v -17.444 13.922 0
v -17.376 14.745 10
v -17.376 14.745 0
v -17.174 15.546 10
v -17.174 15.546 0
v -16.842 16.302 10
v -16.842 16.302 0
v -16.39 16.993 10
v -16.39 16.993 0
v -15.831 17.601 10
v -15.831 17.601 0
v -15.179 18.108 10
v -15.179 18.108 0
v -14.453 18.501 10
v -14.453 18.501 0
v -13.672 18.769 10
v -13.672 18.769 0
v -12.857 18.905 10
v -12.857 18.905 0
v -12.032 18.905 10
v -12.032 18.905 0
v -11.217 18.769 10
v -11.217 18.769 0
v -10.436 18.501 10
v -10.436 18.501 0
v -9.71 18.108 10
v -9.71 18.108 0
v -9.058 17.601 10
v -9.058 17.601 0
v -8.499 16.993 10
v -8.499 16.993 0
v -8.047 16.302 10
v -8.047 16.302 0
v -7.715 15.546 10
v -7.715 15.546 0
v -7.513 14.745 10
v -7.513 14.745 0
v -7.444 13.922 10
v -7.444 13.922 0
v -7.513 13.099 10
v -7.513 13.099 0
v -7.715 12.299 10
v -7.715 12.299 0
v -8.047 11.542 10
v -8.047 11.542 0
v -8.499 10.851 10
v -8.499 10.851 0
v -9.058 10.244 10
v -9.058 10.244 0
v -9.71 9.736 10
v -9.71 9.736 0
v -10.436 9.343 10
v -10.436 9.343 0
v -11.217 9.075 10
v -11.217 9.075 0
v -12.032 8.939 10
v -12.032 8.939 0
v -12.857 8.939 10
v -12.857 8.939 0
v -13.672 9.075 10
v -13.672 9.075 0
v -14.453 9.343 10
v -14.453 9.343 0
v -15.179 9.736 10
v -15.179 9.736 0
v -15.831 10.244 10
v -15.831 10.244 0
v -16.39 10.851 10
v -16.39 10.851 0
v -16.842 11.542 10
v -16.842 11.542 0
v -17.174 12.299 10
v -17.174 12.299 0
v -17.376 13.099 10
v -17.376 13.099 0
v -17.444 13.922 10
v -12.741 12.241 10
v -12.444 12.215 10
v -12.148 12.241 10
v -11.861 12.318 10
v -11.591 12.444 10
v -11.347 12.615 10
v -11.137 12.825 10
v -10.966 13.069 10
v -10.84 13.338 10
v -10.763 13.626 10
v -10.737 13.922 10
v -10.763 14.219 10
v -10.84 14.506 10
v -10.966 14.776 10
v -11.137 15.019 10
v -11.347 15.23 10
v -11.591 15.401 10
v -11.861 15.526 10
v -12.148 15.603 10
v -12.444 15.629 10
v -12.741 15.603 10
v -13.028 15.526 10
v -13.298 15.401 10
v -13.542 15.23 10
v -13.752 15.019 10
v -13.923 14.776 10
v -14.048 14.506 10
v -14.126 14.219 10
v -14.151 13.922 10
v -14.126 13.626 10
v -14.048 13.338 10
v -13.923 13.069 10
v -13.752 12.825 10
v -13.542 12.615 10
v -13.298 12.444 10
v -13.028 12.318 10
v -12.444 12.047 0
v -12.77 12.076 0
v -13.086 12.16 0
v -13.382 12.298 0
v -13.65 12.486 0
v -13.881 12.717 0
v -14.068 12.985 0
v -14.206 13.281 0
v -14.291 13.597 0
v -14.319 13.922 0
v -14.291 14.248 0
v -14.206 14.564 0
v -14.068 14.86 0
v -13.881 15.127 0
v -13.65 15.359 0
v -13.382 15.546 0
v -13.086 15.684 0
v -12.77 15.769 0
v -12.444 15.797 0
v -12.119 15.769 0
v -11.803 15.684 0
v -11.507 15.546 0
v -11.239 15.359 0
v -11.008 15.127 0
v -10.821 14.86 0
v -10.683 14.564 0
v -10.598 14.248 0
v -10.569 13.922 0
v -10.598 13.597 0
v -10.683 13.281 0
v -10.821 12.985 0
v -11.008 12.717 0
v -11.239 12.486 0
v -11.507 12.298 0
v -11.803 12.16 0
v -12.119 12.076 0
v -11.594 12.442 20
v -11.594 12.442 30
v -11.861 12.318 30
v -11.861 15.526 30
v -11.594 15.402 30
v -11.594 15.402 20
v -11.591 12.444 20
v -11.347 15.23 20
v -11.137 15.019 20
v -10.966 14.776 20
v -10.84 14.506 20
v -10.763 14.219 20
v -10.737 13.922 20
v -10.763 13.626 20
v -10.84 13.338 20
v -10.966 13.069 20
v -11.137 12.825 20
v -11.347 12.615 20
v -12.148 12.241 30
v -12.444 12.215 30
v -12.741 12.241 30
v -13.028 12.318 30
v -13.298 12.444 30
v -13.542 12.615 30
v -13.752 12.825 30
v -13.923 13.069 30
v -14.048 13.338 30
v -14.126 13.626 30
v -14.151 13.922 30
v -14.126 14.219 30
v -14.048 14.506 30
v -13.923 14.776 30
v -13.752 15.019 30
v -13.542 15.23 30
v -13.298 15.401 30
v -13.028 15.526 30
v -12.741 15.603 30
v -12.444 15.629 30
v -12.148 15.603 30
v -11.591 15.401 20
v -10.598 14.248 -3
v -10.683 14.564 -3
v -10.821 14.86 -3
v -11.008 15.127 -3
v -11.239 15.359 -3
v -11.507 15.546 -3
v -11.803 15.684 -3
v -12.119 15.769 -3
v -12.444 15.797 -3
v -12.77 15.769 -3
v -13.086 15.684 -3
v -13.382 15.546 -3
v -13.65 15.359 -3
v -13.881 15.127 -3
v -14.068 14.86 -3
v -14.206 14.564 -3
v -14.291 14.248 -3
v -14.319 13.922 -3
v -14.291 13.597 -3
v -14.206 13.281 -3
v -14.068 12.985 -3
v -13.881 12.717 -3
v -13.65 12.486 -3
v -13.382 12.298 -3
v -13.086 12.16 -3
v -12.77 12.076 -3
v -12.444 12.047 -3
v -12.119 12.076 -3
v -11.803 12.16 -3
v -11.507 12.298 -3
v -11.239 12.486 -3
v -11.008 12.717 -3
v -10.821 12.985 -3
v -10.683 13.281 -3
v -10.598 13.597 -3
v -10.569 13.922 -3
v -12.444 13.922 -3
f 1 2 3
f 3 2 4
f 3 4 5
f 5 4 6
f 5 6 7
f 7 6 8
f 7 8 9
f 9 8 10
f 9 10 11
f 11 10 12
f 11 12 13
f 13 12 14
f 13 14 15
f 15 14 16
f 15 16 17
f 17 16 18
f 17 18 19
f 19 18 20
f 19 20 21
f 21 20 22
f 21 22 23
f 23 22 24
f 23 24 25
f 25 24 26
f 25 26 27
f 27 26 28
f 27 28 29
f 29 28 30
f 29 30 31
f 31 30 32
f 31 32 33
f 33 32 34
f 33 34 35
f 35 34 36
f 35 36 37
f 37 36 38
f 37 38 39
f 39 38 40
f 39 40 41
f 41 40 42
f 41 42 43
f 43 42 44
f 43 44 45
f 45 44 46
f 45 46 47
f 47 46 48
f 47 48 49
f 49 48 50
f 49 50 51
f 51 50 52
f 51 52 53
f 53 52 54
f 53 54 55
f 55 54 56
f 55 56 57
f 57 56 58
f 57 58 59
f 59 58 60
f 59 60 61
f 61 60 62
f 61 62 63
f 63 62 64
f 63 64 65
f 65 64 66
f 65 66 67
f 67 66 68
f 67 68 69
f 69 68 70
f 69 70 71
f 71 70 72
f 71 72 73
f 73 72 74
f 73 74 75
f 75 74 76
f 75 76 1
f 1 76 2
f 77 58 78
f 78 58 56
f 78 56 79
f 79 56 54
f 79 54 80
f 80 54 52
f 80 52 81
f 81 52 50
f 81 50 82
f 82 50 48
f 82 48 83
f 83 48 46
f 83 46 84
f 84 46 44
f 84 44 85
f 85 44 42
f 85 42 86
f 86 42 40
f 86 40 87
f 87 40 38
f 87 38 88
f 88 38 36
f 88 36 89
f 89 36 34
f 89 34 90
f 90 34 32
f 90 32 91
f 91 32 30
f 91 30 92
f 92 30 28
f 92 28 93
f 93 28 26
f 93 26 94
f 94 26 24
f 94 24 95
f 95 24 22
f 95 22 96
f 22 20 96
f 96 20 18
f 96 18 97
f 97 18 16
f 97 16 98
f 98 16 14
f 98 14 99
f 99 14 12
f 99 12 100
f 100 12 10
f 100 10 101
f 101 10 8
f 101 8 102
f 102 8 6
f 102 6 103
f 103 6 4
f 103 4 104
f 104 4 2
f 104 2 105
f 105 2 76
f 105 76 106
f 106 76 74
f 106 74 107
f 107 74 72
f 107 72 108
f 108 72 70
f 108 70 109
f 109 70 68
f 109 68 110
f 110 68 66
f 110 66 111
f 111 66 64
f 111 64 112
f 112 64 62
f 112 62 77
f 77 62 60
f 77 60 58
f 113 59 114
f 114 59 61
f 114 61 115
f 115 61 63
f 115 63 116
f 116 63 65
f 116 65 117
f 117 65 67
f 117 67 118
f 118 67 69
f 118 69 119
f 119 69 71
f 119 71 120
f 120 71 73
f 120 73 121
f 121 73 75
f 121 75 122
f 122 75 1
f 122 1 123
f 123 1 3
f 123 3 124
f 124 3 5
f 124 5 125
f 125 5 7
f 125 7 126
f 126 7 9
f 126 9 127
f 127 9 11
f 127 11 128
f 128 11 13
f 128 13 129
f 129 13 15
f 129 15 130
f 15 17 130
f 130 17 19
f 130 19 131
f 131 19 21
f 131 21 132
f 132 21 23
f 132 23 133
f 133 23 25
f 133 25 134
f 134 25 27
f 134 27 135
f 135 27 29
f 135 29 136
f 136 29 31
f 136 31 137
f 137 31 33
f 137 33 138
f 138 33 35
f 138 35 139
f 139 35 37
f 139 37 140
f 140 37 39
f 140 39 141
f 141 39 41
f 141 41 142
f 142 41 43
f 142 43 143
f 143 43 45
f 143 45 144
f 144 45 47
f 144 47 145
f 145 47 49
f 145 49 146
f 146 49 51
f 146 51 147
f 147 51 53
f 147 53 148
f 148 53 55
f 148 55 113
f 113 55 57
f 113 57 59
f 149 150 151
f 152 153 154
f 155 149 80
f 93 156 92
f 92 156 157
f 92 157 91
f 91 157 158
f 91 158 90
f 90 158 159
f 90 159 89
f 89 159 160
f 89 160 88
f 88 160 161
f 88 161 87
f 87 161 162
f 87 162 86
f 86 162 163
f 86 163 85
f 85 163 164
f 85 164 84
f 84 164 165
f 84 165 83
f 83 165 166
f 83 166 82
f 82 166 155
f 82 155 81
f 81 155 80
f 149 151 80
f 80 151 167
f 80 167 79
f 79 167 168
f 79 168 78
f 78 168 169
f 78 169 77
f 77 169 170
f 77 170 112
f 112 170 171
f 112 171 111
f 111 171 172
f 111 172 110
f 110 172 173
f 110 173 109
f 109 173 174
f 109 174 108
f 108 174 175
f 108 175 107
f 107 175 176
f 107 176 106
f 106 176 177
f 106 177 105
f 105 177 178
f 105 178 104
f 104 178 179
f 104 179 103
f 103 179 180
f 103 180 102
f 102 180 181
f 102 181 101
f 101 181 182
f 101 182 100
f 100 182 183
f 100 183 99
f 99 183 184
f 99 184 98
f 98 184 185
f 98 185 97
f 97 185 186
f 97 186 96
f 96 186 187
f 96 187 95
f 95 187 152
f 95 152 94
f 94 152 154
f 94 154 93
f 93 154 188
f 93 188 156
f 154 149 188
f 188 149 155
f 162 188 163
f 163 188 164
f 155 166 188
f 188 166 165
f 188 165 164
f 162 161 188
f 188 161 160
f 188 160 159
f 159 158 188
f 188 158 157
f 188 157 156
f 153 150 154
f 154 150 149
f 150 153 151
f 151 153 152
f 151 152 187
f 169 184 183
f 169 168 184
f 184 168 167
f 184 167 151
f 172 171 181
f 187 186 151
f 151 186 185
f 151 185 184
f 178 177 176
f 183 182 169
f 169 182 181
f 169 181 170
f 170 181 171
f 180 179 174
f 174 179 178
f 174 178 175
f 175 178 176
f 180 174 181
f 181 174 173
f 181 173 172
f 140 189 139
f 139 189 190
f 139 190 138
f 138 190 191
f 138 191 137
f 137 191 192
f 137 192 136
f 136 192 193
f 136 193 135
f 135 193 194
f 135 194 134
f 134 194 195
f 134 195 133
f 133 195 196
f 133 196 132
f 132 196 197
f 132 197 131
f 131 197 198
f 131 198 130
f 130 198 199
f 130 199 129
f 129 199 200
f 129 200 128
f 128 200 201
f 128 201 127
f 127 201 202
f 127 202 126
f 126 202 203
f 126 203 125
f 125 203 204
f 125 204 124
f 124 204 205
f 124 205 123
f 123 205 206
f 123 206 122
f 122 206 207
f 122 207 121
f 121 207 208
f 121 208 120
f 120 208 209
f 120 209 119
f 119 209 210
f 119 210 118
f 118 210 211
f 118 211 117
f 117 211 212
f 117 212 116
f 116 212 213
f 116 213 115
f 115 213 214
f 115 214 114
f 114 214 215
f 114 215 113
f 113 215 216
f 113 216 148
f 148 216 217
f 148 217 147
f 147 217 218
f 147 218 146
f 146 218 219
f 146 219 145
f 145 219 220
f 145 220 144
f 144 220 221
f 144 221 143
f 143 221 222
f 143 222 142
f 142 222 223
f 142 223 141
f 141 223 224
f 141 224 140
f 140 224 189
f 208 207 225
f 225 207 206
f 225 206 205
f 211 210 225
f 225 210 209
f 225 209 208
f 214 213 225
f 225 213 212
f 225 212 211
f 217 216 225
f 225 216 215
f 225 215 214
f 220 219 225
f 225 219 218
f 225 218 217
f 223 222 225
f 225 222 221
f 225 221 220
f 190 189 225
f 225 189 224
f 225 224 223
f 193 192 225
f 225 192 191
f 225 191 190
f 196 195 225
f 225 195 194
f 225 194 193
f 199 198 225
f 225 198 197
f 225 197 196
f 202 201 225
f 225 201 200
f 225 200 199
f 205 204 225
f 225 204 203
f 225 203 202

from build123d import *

# Parameters (mm, degrees)
SKETCH1_R           = 5
BOSS_EXTRUDE1_DEPTH = 10
SKETCH2_R           = 1.707
BOSS_EXTRUDE3_DEPTH = 10
BOSS_EXTRUDE4_DEPTH = 10
SKETCH5_R           = 1.875
BOSS_EXTRUDE5_DEPTH = 3


with BuildPart() as part:
    # Sketch1 → Boss-Extrude1 (new body)
    with BuildSketch(Plane.XY):
        with Locations((-12.444444444, 13.922222222)):
            Circle(SKETCH1_R)
    extrude(amount=BOSS_EXTRUDE1_DEPTH)

    # Sketch2 → Boss-Extrude3 (add)
    with BuildSketch(Plane.XY.offset(10)):
        with Locations((-12.444444444, 13.922222222)):
            Circle(SKETCH2_R)
    extrude(amount=BOSS_EXTRUDE3_DEPTH)

    # Sketch4 → Boss-Extrude4 (add)
    with BuildSketch(Plane.XY.offset(20)):
        with BuildLine():
            Line((-11.593886392, 15.402222222), (-11.593886392, 12.442222222))
            ThreePointArc((-11.593886392, 12.442222222), (-14.151444444, 13.922222222), (-11.593886392, 15.402222222))
        make_face()
    extrude(amount=BOSS_EXTRUDE4_DEPTH)

    # Sketch5 → Boss-Extrude5 (add)
    with BuildSketch(Plane(origin=(0, 0, 0), x_dir=(-1, 0, 0), z_dir=(0, 0, -1))):
        with Locations((12.444444444, 13.922222222)):
            Circle(SKETCH5_R)
    extrude(amount=BOSS_EXTRUDE5_DEPTH)


solid = part.part
